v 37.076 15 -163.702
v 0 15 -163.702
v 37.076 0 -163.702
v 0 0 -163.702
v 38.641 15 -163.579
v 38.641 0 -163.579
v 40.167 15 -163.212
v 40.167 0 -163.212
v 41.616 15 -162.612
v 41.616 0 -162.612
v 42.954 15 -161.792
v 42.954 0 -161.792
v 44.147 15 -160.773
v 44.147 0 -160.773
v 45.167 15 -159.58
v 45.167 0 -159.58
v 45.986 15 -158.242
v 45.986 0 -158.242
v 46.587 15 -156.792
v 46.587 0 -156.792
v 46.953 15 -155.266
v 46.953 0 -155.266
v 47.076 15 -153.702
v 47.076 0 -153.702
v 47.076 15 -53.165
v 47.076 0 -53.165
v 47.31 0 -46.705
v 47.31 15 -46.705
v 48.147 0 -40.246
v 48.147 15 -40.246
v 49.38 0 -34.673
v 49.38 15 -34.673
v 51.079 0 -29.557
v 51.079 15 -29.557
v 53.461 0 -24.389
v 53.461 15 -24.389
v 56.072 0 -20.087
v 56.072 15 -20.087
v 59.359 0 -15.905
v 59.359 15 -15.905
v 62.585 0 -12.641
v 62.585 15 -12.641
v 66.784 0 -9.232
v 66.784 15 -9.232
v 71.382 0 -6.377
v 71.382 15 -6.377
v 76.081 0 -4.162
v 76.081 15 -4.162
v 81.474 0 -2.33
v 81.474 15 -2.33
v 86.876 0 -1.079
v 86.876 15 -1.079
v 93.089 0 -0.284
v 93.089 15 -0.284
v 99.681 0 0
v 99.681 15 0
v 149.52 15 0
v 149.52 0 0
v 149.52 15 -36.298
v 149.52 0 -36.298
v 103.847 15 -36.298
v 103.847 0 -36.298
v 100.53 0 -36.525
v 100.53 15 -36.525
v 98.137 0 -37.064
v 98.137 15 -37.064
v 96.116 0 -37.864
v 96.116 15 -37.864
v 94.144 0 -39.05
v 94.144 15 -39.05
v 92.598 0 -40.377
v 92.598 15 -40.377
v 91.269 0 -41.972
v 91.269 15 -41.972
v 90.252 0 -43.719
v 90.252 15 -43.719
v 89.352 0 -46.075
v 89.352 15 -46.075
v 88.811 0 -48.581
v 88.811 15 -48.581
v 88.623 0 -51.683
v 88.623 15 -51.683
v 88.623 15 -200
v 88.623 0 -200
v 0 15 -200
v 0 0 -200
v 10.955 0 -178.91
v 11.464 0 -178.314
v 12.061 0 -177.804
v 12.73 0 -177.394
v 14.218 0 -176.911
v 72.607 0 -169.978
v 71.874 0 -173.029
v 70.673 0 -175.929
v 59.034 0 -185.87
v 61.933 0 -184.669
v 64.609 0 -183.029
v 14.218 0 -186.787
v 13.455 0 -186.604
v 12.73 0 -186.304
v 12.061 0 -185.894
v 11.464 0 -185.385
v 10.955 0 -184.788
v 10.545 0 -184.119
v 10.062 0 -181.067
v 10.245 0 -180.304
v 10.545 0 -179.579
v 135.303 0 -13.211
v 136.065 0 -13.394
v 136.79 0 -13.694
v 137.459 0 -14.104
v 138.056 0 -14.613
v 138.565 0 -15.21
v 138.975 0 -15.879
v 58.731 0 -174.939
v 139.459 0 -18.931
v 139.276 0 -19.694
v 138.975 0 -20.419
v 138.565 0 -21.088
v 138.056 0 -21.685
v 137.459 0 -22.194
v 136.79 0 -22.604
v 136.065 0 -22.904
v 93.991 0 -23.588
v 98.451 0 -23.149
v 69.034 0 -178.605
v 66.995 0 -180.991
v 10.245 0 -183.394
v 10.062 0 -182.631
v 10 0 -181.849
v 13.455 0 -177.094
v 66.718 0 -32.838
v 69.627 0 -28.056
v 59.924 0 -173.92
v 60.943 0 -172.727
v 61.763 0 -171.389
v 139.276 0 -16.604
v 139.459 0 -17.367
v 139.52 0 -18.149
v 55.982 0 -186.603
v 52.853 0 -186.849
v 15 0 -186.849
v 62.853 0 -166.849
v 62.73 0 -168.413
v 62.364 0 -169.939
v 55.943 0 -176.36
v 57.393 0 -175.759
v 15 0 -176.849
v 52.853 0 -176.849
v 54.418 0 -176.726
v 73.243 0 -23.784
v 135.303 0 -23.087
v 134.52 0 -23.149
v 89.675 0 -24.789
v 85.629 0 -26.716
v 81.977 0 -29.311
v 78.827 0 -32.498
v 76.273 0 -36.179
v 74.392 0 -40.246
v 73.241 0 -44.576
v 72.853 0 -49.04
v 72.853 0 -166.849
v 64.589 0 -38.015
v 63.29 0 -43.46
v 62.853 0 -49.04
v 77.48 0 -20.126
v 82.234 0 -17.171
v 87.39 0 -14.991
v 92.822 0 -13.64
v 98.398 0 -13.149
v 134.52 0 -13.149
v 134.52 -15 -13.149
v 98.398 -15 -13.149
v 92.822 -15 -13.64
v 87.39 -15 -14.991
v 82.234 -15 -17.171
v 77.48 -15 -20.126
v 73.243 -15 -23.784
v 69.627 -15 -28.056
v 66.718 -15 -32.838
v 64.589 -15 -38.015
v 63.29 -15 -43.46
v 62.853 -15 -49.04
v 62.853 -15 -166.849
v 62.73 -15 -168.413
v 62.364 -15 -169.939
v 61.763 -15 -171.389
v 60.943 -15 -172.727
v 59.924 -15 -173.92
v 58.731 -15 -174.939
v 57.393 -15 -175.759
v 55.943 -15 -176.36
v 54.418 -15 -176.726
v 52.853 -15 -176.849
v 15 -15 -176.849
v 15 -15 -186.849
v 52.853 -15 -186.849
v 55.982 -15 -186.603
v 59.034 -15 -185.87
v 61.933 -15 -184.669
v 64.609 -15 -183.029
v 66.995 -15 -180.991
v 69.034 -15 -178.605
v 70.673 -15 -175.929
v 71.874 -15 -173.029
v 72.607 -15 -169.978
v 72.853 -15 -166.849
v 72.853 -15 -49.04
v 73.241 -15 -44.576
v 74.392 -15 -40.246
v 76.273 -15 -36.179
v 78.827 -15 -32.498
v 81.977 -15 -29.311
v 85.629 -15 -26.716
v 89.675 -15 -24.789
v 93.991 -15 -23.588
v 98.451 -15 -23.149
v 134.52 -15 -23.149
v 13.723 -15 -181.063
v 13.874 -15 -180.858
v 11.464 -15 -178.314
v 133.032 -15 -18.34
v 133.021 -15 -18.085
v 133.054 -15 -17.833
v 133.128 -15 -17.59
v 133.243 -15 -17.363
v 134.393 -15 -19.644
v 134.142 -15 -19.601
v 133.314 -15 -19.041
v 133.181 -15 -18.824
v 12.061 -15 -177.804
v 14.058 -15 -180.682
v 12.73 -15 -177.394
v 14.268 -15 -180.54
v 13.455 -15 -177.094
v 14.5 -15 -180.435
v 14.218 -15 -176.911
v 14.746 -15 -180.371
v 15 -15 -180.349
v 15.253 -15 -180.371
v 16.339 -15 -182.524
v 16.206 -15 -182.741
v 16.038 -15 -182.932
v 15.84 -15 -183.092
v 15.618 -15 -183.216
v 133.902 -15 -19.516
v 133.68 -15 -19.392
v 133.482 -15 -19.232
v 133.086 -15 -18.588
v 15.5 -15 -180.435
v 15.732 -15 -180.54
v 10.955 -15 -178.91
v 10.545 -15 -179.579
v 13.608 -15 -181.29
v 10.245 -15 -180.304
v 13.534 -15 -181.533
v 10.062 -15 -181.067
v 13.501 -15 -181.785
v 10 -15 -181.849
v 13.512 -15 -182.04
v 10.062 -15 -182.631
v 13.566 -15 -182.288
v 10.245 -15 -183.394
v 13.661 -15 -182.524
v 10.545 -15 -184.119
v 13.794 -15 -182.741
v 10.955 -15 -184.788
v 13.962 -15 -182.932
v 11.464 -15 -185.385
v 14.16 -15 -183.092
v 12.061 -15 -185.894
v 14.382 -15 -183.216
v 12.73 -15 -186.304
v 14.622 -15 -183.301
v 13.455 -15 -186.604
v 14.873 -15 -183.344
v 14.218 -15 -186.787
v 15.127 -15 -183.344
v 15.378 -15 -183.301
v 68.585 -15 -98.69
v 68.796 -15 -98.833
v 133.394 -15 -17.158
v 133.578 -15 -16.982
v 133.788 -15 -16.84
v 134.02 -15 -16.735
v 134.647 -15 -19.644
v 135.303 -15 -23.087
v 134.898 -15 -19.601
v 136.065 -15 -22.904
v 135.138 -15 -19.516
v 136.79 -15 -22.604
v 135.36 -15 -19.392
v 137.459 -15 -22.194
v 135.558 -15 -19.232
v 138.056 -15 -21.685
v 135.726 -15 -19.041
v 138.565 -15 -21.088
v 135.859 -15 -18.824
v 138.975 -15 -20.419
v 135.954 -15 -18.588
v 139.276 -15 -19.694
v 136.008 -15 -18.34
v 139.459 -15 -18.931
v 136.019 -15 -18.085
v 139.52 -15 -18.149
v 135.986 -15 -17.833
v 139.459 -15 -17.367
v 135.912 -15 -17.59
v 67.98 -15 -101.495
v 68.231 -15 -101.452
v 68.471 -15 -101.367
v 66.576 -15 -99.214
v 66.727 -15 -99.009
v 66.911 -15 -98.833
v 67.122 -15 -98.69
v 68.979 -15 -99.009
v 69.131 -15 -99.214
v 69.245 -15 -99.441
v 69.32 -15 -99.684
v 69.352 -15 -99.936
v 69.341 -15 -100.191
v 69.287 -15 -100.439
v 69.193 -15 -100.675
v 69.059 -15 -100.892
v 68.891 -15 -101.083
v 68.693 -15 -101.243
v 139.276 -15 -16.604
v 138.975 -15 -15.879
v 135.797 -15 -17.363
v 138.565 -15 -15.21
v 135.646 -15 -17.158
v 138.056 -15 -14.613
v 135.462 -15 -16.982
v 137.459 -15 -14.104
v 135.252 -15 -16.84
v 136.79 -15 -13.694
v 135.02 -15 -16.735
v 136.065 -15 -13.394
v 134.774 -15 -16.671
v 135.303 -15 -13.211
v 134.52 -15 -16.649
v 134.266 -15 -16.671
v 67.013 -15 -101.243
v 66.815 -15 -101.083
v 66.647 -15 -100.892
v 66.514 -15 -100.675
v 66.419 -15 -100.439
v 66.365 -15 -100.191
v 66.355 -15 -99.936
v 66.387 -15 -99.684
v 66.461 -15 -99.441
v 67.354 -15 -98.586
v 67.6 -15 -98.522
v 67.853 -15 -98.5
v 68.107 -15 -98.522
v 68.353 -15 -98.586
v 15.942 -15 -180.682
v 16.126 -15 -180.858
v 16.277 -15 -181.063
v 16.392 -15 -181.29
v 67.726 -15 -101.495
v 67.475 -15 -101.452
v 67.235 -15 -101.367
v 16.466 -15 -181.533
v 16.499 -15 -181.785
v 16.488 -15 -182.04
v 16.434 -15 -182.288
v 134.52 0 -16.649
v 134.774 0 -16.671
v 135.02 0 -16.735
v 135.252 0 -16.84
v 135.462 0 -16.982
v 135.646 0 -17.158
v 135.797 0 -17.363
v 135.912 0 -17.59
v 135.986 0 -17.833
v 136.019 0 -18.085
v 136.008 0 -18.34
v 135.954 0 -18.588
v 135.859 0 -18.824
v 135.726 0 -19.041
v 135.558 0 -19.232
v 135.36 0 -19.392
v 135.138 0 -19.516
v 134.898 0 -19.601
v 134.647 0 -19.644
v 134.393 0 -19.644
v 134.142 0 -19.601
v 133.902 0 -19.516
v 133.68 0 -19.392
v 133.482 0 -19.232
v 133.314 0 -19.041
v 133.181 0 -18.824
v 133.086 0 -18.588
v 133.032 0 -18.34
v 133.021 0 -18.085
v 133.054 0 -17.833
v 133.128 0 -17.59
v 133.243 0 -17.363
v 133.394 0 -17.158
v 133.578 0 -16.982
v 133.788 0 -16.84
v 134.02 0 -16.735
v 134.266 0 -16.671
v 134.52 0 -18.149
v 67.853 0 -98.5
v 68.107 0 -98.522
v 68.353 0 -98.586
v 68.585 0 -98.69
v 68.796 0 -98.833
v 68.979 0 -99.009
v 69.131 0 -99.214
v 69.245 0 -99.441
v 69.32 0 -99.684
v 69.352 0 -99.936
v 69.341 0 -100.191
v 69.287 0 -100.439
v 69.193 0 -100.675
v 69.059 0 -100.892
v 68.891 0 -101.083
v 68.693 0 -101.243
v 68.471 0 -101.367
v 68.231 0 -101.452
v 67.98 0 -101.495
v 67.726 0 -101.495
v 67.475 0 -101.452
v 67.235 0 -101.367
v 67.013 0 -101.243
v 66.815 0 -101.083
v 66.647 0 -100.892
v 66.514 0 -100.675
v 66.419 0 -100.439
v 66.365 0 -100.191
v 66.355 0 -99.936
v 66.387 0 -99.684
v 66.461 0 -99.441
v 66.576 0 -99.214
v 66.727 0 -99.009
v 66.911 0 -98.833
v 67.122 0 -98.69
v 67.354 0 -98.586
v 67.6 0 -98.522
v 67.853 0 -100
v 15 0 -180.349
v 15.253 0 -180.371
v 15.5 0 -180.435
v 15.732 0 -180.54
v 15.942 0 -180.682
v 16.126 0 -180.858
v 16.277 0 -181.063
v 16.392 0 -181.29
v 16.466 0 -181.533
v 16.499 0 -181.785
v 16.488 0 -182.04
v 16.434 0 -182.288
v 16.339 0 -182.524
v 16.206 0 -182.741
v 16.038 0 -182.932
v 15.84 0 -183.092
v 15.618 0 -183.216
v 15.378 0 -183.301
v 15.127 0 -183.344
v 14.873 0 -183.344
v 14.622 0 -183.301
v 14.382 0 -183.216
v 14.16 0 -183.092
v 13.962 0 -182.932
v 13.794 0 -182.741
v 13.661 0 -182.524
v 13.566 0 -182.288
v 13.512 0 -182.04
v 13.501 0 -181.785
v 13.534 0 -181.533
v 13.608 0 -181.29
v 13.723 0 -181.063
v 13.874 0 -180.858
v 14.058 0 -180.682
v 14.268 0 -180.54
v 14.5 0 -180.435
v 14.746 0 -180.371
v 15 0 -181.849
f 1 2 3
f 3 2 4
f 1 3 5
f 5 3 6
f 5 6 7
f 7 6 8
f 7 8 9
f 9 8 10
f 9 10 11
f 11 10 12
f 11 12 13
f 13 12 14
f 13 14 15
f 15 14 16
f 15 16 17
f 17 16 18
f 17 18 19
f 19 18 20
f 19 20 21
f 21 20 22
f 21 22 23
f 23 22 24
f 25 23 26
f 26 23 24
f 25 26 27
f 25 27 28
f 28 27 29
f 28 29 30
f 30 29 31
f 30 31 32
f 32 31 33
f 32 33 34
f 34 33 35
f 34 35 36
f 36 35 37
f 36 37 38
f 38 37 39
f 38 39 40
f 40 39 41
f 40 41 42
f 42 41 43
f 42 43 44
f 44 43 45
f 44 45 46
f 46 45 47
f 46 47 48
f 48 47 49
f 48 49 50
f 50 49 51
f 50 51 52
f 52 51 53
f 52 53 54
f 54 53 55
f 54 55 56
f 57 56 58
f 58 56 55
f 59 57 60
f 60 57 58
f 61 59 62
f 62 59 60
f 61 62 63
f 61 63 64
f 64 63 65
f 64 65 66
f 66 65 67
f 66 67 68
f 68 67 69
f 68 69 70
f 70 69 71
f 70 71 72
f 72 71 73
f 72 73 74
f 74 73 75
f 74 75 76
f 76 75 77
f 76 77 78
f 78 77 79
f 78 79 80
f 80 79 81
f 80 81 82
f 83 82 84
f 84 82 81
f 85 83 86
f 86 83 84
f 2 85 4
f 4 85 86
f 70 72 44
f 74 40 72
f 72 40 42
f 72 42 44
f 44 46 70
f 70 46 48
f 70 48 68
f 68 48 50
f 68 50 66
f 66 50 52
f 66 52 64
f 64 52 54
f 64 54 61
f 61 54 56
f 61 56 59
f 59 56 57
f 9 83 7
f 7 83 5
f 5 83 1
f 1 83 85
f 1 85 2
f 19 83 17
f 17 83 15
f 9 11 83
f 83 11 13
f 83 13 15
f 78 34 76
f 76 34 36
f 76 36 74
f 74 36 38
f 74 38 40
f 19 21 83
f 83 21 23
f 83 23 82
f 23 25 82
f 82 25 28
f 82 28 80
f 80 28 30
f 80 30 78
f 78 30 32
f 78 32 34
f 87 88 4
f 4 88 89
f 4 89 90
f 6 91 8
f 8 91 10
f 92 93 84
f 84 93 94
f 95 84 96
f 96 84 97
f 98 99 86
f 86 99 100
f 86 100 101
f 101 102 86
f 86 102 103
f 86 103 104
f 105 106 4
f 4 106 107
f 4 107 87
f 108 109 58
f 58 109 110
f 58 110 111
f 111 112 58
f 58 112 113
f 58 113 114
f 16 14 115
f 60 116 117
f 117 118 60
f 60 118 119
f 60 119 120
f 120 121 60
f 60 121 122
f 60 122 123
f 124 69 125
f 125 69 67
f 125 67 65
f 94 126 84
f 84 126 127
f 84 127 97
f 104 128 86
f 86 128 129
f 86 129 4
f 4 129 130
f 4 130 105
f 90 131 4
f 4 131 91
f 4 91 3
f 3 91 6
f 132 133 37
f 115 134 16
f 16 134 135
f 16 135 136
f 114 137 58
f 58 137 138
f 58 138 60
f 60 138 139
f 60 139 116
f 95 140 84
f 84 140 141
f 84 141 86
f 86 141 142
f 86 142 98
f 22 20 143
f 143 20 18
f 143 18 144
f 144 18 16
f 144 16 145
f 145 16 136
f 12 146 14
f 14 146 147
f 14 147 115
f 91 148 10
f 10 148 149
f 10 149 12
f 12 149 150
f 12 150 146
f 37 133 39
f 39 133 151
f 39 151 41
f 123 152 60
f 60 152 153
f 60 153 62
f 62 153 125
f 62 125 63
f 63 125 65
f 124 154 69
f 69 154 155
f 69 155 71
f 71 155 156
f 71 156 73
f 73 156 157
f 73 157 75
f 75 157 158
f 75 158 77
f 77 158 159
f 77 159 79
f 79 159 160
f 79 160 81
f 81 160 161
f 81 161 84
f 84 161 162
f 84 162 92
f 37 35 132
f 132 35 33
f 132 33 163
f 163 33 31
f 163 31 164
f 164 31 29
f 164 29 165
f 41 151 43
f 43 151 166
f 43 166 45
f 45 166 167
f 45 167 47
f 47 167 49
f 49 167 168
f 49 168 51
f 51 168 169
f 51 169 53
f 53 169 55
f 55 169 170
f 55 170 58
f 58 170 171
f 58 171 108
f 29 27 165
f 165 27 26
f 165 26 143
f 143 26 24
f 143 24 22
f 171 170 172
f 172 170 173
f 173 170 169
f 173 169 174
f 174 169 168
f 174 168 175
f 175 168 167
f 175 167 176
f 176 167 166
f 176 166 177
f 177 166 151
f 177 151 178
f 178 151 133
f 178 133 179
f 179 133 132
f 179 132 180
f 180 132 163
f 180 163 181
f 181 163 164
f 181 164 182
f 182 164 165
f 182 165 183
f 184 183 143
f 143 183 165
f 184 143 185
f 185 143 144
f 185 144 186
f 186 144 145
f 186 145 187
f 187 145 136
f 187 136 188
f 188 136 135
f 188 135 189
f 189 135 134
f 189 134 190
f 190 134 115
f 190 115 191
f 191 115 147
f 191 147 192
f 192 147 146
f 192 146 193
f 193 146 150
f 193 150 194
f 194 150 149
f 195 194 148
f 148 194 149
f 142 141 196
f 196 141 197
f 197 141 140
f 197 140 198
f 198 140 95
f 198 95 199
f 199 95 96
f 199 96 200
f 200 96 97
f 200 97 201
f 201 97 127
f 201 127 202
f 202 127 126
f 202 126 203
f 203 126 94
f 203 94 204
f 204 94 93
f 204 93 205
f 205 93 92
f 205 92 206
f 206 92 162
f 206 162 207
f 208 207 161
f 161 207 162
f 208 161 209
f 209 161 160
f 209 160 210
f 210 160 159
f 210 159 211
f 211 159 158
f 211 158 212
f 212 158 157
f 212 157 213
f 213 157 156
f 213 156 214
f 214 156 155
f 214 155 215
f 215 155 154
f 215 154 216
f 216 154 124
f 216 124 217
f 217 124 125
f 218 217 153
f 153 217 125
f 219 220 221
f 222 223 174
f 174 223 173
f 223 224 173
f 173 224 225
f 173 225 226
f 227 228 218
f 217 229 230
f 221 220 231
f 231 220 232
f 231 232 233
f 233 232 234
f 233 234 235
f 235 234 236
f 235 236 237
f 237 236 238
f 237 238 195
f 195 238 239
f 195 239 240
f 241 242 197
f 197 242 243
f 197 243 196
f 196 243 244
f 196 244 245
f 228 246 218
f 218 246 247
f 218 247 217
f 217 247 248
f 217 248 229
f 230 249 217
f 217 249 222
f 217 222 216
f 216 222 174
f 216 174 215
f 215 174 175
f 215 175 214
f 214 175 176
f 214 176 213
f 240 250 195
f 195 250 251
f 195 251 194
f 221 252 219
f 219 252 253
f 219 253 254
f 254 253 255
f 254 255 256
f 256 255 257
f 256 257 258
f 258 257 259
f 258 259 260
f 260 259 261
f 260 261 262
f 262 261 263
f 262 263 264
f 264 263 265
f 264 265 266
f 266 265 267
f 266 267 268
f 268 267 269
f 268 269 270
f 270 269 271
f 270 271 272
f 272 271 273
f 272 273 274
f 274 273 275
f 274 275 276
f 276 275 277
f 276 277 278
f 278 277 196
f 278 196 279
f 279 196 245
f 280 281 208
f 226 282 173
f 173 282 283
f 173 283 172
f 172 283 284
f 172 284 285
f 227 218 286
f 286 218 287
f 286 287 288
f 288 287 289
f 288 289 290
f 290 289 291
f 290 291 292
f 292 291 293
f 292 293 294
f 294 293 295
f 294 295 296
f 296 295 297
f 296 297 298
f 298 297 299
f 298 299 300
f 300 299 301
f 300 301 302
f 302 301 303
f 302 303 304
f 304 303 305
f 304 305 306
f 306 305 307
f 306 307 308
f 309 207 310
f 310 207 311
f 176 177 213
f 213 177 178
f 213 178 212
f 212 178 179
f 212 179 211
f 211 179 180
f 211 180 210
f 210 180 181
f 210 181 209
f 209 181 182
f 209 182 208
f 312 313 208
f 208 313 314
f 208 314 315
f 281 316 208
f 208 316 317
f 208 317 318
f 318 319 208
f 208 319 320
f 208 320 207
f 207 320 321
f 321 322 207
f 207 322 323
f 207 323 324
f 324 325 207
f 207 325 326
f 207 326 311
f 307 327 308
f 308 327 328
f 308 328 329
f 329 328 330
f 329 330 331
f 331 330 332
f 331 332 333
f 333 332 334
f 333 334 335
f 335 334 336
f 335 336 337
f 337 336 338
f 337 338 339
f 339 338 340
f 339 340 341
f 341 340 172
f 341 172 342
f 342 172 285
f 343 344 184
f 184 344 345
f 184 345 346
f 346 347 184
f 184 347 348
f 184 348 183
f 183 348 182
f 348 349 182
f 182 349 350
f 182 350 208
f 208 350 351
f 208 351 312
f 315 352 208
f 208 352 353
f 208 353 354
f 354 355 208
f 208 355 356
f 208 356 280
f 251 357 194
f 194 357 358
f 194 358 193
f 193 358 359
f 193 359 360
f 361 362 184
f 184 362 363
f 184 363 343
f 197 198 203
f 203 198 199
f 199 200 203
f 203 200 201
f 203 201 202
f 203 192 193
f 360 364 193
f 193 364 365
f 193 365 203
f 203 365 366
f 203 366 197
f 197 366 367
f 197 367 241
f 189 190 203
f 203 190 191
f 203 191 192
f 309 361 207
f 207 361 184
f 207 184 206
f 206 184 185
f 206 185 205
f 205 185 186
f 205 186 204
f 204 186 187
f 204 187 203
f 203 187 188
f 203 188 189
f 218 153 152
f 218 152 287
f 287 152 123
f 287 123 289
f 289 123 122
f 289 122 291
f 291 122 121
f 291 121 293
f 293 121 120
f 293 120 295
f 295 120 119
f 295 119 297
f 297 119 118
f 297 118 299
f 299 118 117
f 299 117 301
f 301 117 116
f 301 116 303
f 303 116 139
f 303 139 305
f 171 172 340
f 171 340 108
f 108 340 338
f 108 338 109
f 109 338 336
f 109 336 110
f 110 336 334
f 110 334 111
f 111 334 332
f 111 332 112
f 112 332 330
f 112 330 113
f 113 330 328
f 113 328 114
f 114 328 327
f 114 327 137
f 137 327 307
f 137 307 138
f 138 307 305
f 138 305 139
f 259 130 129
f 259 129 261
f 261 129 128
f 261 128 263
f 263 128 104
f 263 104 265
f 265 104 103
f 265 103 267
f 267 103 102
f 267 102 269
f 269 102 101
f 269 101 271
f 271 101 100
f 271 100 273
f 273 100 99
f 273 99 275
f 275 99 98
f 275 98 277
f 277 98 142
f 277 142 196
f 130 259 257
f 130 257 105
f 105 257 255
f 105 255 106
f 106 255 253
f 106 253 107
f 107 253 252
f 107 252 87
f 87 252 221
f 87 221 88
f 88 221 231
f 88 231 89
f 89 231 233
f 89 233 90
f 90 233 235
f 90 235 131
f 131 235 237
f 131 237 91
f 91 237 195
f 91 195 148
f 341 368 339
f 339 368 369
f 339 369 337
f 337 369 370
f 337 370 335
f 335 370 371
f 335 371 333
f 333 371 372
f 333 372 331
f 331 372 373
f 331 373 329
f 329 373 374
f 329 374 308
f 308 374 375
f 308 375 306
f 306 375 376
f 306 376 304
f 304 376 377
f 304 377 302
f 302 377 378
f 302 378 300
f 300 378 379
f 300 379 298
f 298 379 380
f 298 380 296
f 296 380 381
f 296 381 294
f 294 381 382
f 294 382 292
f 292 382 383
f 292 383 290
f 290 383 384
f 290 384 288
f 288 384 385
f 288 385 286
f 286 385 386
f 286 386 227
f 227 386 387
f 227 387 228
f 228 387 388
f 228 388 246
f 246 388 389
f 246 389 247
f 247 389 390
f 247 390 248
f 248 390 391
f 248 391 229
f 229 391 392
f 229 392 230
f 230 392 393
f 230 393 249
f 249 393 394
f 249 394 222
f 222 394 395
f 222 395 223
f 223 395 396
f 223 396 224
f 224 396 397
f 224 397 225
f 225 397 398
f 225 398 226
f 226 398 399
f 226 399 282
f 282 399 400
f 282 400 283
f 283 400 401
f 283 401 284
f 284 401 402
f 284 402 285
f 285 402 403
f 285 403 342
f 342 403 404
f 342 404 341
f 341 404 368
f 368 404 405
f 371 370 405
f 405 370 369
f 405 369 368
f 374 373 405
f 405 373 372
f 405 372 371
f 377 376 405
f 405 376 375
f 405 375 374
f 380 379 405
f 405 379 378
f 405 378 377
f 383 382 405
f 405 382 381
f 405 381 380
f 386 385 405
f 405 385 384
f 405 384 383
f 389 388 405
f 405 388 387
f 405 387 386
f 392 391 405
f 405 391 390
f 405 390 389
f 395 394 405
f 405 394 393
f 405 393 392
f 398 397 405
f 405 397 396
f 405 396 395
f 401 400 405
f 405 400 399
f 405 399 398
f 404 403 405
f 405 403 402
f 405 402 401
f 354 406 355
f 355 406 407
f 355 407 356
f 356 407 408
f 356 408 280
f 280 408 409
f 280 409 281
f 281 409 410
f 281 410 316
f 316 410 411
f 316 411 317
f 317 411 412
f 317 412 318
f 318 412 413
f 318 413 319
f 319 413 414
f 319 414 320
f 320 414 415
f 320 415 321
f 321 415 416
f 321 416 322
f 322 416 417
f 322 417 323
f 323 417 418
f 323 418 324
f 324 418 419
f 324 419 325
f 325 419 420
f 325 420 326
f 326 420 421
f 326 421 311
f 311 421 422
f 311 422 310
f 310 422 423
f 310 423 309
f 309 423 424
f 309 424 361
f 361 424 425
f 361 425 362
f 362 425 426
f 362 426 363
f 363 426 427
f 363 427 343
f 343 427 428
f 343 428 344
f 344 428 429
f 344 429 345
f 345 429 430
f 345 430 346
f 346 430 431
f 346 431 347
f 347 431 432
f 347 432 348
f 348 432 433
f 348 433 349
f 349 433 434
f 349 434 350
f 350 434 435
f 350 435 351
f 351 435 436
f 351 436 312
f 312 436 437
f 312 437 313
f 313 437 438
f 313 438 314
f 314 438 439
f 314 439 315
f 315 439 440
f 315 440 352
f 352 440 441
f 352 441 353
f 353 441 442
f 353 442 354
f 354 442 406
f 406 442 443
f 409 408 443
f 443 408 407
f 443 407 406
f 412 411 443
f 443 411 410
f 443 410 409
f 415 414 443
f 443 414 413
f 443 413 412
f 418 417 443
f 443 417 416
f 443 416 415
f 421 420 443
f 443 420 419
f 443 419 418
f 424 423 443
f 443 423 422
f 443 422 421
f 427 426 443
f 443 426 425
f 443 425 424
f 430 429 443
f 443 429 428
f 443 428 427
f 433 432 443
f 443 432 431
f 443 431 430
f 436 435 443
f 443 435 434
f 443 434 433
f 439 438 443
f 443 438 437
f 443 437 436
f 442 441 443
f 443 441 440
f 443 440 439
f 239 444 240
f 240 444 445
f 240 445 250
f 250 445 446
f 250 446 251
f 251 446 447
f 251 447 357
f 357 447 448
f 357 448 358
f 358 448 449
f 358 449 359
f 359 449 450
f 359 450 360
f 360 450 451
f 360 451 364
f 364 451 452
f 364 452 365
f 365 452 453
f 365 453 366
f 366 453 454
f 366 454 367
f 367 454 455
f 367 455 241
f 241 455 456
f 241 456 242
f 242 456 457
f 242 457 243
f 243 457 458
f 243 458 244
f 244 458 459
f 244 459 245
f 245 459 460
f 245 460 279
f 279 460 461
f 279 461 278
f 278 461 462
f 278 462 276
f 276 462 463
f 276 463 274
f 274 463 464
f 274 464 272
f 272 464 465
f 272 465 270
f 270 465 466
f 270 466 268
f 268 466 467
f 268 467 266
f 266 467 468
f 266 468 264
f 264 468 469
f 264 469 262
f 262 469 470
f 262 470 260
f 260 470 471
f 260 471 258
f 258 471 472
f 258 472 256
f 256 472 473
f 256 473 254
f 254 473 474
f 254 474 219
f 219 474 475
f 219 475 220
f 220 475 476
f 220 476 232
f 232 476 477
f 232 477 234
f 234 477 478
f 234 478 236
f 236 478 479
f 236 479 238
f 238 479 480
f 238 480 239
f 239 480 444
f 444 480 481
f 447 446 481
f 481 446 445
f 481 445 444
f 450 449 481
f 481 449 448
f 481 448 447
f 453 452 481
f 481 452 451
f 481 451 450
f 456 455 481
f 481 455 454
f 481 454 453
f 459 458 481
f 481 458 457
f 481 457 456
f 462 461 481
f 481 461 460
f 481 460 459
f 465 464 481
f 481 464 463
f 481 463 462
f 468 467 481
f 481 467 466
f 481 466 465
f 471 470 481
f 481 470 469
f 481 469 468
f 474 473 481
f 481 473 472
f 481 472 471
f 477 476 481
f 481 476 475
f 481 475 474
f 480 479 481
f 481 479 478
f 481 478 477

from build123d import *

# Parameters (mm, degrees)
EXTRUDE_L_DEPTH        = 15
EXTRUDE_951_DEPTH      = 15
FILLET_1044_R          = 5
SKETCH_1306_R          = 1.5
CUT_EXTRUDE_1314_DEPTH = 251.162599761


with BuildPart() as part:
    # Эскиз l → l (new body)
    with BuildSketch(Plane(origin=(0, 0, 0), x_dir=(1, 0, 0), z_dir=(0, 1, 0))):
        with BuildLine():
            Line((0, 163.701923077), (0, 200))
            Line((0, 200), (88.622884615, 200))
            Line((88.622884615, 200), (88.622884615, 51.682692308))
            add(Edge.make_bspline(
                [(88.622884615, 51.682692308), (88.584324136, 49.498745129), (89.03409536, 46.314042521), (90.756066544, 42.548836596), (92.543680506, 40.272944728), (94.800293255, 38.479885865), (98.492933692, 36.6691907), (101.687793554, 36.288646199), (103.84724359, 36.298076923)],
                knots=[0, 0, 0, 0, 0.266770811, 0.385688366, 0.501833832, 0.616701353, 0.734856032, 1, 1, 1, 1], degree=3))
            Line((103.84724359, 36.298076923), (149.520320513, 36.298076923))
            Line((149.520320513, 36.298076923), (149.520320513, 0))
            Line((149.520320513, 0), (99.680576923, 0))
            add(Edge.make_bspline(
                [(99.680576923, 0), (95.787985552, 0.056561193), (90.049186966, 0.354248464), (82.756449757, 1.913423248), (77.722410387, 3.420669789), (73.047421178, 5.435773635), (68.65960796, 7.842675126), (64.657079117, 10.74400138), (60.988860255, 14.046426407), (57.696300151, 17.73067833), (54.833554235, 21.805264076), (52.441129709, 26.224868693), (50.453789108, 30.958007277), (48.934002029, 36.035784324), (47.490582867, 43.441868234), (47.022391454, 49.220591435), (47.076410256, 53.165064103)],
                knots=[0, 0, 0, 0, 0.137920176, 0.202111555, 0.263363656, 0.323455843, 0.381806019, 0.440003085, 0.497856099, 0.556060831, 0.614368942, 0.673546606, 0.733454771, 0.79561061, 0.860632327, 1, 1, 1, 1], degree=3))
            Line((47.076410256, 53.165064103), (47.076410256, 153.701923077))
            ThreePointArc((47.076410256, 153.701923077), (44.147478068, 160.772990889), (37.076410256, 163.701923077))
            Line((37.076410256, 163.701923077), (0, 163.701923077))
        make_face()
    extrude(amount=EXTRUDE_L_DEPTH)

    # Sketch 848 → Extrude 951 (add)
    with BuildSketch(Plane(origin=(0, 0, 0), x_dir=(1, 0, 0), z_dir=(0, 1, 0))):
        with BuildLine():
            Line((10, 176.8490385), (52.853237, 176.8490385))
            ThreePointArc((52.853237, 176.8490385), (59.924304812, 173.920106312), (62.853237, 166.8490385))
            Line((62.853237, 166.8490385), (62.853237, 49.040393573))
            ThreePointArc((62.853237, 49.040393573), (73.181783835, 23.845809353), (98.223159353, 13.151162754))
            ThreePointArc((98.223159353, 13.151162754), (98.368899816, 13.149569571), (98.514648019, 13.1490385))
            Line((98.514648019, 13.1490385), (139.520321, 13.1490385))
            Line((139.520321, 13.1490385), (139.520321, 23.1490385))
            Line((139.520321, 23.1490385), (98.514648019, 23.1490385))
            ThreePointArc((98.514648019, 23.1490385), (98.441773917, 23.149304035), (98.368903686, 23.150100627))
            ThreePointArc((98.368903686, 23.150100627), (80.304193656, 30.865159632), (72.853237, 49.040393573))
            Line((72.853237, 49.040393573), (72.853237, 166.8490385))
            ThreePointArc((72.853237, 166.8490385), (66.995372624, 180.991174124), (52.853237, 186.8490385))
            Line((52.853237, 186.8490385), (10, 186.8490385))
            Line((10, 186.8490385), (10, 176.8490385))
        make_face()
    extrude(amount=-EXTRUDE_951_DEPTH)

    # Fillet 1044
    fillet_1044_edges = [part.edges().sort_by_distance(p)[0] for p in [
        (139.520321, -7.5, -13.1490385),
        (139.520321, -7.5, -23.1490385),
        (10, -7.5, -176.8490385),
        (10, -7.5, -186.8490385),
    ]]
    fillet(fillet_1044_edges, radius=FILLET_1044_R - 0.0001)  # a hair under: the kernel refuses the full size

    # Sketch 1306 → Cut-Extrude 1314 (cut, through all)
    with BuildSketch(Plane(origin=(0, 0, 0), x_dir=(1, 0, 0), z_dir=(0, 1, 0))):
        with Locations(Location((15, 181.849039, 0), (0, 0, 270))):
            Circle(SKETCH_1306_R)
        with Locations(Location((67.853237, 100, 0), (0, 0, 270))):
            Circle(SKETCH_1306_R)
        with Locations(Location((134.52, 18.149039, 0), (0, 0, 270))):
            Circle(SKETCH_1306_R)
    extrude(amount=-CUT_EXTRUDE_1314_DEPTH, mode=Mode.SUBTRACT)


solid = part.part
